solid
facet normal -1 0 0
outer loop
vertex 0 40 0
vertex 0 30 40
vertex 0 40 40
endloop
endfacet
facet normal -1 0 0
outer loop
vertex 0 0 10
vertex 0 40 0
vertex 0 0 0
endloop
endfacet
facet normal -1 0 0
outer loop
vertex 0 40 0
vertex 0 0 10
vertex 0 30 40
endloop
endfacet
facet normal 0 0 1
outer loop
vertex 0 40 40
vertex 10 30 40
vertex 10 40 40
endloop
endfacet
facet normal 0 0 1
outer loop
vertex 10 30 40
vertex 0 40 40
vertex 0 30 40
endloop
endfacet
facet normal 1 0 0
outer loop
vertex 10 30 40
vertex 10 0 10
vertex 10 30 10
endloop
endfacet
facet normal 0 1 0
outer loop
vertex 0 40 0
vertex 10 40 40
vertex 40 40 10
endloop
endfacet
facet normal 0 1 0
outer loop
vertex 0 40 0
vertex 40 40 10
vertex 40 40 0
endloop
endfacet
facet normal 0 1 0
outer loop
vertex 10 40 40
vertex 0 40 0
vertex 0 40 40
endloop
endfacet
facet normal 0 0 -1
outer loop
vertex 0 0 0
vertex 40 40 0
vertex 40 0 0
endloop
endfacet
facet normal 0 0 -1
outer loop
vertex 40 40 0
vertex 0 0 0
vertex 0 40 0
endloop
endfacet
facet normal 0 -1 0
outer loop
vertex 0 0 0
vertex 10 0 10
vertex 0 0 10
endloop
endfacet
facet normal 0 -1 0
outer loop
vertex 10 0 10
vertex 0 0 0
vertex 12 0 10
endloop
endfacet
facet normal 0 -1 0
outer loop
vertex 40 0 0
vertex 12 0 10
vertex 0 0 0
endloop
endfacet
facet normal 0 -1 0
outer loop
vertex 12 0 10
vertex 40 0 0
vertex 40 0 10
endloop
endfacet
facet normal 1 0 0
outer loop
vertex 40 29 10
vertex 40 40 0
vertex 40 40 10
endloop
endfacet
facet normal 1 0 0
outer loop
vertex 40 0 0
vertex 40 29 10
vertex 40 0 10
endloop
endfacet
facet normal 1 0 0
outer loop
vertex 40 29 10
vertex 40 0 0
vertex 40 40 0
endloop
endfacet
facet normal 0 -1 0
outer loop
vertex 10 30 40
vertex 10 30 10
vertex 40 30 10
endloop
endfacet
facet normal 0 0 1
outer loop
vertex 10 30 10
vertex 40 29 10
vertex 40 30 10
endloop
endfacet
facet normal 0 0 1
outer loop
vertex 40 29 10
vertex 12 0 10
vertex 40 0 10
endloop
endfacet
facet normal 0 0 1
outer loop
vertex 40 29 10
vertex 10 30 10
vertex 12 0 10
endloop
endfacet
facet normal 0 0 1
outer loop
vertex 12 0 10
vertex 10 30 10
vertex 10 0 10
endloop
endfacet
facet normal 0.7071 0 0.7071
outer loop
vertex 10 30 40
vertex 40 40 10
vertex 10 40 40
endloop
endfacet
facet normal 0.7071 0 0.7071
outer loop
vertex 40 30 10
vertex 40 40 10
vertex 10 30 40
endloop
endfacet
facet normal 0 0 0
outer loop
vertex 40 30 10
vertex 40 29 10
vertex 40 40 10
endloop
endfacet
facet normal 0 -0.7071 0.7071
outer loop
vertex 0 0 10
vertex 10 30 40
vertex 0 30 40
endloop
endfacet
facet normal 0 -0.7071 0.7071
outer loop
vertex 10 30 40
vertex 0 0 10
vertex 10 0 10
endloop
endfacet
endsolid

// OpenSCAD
difference(){
union(){
//lateral
cube([10,40,40]);
// pared fondo
translate([0,30,0])
cube([40,10,40]);
// base
cube([40,40,10]);
//plano fondo
}
union(){
translate([10,29,40])
rotate([0,45,0])
cube([50,12,30]);
//plano lateral
translate([0,0,10])
rotate([45,0,0])
cube([12,50,50]);
}
}
